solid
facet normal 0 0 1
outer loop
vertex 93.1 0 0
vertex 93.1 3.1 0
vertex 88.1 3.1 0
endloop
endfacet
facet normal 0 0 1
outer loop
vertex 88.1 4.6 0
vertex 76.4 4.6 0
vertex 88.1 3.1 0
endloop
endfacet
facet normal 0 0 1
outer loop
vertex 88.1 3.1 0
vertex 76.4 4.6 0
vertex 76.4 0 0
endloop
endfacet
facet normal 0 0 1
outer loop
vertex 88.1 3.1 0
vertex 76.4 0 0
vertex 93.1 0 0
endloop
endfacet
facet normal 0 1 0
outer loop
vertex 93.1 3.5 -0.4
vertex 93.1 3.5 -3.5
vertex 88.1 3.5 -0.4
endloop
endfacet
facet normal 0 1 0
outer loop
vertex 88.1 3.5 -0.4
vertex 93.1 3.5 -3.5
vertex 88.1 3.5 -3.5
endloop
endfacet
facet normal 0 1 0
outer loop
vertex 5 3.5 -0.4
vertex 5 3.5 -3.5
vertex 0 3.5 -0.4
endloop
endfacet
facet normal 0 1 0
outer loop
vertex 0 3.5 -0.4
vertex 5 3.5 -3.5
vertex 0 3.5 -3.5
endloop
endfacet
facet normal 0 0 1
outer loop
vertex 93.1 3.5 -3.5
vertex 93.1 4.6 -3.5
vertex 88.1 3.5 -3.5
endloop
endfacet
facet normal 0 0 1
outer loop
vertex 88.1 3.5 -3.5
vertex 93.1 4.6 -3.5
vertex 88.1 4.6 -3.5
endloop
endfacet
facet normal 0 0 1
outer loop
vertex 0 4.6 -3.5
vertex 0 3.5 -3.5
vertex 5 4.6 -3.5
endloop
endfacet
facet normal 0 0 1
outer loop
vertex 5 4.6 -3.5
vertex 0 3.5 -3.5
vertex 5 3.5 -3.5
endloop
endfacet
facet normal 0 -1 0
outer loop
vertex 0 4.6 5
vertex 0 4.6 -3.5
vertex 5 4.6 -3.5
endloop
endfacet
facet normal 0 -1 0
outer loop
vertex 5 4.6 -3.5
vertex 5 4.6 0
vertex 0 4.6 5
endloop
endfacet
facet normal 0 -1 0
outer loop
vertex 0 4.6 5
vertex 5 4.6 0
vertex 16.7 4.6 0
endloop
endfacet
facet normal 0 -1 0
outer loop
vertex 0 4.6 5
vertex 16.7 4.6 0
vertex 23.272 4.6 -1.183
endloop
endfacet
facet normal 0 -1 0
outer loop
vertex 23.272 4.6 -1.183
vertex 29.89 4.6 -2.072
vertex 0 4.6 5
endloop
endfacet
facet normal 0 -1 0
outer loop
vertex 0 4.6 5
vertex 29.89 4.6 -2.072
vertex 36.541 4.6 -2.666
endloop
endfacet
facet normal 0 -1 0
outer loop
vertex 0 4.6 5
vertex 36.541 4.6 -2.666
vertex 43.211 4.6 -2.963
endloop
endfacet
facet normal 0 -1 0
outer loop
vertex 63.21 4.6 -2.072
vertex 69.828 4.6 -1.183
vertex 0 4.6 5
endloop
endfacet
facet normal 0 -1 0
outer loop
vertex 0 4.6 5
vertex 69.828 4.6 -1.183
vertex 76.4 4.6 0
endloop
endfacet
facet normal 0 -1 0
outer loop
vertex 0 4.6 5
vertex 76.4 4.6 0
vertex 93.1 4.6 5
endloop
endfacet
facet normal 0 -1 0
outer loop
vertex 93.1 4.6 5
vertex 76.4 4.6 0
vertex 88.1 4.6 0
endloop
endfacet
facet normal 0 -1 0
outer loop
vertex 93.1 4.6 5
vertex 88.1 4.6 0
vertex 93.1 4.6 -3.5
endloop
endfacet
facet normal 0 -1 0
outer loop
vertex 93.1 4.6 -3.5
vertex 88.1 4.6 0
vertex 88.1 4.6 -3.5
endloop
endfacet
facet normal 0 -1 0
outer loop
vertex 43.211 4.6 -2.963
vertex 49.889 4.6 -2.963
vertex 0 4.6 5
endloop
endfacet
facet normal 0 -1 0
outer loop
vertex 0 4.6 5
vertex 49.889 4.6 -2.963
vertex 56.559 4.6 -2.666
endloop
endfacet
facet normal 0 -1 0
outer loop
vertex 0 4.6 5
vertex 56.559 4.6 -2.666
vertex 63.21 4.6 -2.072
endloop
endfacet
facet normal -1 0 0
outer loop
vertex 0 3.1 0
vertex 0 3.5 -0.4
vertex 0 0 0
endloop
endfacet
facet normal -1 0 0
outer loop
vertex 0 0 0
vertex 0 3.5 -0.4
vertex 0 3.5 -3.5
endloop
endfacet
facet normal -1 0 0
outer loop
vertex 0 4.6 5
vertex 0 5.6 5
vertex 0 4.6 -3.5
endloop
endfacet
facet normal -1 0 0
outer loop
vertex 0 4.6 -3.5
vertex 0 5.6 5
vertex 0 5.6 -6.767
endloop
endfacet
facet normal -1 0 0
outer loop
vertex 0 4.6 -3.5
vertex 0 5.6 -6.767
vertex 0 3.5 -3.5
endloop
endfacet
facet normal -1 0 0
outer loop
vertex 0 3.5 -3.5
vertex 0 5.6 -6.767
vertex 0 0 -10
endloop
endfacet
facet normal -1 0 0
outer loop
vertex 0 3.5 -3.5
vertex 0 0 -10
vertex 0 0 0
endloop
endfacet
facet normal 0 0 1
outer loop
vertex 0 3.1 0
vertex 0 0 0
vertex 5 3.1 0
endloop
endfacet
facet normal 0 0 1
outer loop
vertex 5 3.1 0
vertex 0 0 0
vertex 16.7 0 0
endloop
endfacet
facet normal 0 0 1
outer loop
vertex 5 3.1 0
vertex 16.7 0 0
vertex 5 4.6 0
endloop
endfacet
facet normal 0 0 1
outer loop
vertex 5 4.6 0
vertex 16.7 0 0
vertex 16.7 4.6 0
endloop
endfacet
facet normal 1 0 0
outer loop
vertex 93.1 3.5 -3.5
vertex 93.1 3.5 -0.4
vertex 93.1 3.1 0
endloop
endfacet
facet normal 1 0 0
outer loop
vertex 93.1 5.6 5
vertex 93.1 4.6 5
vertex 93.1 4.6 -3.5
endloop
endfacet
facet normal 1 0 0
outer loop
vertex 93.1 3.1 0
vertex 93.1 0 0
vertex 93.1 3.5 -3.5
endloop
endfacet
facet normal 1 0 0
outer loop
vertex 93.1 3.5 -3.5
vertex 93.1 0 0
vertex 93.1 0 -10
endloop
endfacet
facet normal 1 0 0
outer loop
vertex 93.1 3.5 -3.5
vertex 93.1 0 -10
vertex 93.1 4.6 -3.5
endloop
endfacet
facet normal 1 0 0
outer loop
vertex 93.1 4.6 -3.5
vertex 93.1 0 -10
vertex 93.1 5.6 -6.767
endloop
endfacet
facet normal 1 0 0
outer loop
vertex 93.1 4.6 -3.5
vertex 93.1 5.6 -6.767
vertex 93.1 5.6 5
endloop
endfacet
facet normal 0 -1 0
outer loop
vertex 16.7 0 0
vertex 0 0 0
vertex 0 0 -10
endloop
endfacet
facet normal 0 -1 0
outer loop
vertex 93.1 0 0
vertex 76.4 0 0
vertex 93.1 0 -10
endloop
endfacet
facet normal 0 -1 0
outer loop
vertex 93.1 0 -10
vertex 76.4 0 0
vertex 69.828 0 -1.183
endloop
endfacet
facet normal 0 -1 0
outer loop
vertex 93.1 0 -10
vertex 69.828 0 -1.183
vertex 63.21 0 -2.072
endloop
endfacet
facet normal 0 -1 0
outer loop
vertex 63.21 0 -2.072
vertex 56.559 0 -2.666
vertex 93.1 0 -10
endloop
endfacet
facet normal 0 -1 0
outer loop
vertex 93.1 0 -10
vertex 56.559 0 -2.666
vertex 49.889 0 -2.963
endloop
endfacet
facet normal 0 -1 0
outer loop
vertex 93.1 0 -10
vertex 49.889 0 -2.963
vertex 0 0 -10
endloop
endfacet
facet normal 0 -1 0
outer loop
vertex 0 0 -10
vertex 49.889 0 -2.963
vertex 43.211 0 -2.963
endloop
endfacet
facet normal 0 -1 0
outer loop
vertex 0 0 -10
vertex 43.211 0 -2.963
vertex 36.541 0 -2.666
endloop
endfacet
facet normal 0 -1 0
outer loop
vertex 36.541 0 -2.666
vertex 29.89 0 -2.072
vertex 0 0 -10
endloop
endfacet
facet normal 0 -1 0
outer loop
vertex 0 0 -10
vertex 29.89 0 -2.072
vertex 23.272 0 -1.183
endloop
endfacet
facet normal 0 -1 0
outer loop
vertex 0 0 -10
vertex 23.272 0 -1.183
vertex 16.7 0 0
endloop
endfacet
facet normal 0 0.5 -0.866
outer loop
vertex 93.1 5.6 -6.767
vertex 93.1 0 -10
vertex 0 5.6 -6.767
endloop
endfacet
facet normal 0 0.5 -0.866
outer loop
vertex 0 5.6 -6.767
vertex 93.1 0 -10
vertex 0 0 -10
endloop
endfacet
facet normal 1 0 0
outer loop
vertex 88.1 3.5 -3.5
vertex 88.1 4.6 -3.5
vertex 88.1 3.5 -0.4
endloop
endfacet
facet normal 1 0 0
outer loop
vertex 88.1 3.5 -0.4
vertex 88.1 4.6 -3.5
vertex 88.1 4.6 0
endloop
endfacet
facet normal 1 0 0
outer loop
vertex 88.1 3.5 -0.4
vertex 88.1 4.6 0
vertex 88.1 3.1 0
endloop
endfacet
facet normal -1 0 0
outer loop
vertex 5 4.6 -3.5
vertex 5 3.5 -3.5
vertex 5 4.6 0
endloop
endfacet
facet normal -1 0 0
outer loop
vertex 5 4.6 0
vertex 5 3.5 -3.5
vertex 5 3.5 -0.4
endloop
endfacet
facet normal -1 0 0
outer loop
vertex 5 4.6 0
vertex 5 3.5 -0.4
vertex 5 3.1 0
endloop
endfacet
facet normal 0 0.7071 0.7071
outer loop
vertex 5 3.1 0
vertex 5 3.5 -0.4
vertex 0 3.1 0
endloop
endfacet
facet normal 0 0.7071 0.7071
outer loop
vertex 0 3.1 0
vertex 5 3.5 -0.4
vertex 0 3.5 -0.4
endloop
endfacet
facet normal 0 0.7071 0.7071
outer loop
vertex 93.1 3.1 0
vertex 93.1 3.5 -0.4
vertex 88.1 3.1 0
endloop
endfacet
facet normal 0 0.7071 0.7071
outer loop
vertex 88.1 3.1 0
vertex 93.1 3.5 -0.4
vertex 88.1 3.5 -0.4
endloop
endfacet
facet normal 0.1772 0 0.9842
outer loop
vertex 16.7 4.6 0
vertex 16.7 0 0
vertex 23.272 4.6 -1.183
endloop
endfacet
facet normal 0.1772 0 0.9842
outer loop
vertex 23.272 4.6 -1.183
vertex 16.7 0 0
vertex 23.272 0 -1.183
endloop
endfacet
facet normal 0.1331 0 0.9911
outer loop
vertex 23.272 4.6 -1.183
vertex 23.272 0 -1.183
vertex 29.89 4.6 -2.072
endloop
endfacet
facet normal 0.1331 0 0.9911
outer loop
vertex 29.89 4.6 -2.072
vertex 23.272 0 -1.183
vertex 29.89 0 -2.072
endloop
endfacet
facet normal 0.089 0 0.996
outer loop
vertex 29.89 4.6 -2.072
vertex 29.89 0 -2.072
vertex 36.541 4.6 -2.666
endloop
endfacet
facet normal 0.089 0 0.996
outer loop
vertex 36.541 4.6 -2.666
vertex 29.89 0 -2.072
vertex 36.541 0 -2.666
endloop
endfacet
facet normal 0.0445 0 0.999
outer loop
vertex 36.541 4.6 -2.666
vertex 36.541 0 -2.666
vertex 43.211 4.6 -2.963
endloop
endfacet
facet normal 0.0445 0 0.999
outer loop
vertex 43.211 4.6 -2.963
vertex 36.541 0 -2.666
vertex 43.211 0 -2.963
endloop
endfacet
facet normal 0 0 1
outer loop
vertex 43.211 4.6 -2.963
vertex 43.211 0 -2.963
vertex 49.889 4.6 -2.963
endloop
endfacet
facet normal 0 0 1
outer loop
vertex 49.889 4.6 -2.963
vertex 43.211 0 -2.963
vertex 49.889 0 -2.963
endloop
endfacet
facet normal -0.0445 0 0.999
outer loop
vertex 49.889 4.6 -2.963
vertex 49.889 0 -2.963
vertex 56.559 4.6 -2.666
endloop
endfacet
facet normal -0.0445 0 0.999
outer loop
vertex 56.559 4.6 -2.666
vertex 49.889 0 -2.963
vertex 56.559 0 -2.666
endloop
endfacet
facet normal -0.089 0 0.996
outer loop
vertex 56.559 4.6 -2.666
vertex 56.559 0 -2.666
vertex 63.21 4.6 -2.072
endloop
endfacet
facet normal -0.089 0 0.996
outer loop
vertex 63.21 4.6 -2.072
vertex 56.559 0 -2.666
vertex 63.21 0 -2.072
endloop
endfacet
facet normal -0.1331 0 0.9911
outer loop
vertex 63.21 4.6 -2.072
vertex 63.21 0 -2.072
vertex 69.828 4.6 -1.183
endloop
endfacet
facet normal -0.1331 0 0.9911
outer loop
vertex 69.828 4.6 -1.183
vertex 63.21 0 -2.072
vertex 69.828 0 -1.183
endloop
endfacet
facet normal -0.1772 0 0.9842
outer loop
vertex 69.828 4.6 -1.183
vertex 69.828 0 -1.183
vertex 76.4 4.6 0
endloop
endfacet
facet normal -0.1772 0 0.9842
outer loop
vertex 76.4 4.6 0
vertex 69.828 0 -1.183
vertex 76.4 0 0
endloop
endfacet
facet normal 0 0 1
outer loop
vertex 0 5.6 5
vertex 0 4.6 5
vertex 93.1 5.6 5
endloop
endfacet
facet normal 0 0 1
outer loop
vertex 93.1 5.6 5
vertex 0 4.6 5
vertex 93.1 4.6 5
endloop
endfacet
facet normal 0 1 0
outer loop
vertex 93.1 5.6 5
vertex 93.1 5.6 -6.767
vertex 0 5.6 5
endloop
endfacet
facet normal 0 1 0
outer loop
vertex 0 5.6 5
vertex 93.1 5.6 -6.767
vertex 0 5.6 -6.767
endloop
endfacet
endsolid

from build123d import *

# Parameters (mm, degrees)
SKETCH_2_W                  = 93.1
SKETCH_2_H                  = 10
EXTRUDE_1_DEPTH             = 3.5
SKETCH_4_W                  = 93.1
SKETCH_4_H                  = 6.5
EXTRUDE_2_DEPTH             = 1.1
SKETCH_5_W                  = 93.1
SKETCH_5_H                  = 10
EXTRUDE_3_DEPTH             = 2
CUT_EXTRUDE_1_DEPTH         = 94.867832616
SKETCH_7_W                  = 83.1
SKETCH_7_H                  = 1.1
EXTRUDE_4_DEPTH             = 3.5
CHAMFER_1_SIZE              = 0.4
CUT_EXTRUDE_2_REACH         = 95.868
SKETCH_8_R                  = 150
SKETCH_9_W                  = 93.1
SKETCH_9_H                  = 2
EXTRUDE_5_DEPTH             = 5
EXTRUDE_5_DIRECTION_2_REACH = 95.868
CUT_EXTRUDE_3_REACH         = 95.868
SKETCH_10_W                 = 11.766838493
SKETCH_10_H                 = 1


with BuildPart() as part:
    # 草图2 → 凸台-拉伸1 (new body)
    with BuildSketch(Plane(origin=(0, 0, 0), x_dir=(1, 0, 0), z_dir=(0, 1, 0))):
        with Locations((46.55, 5)):
            Rectangle(SKETCH_2_W, SKETCH_2_H)
    extrude(amount=EXTRUDE_1_DEPTH)

    # 草图4 → 凸台-拉伸2 (add)
    with BuildSketch(Plane(origin=(0, 3.5, 0), x_dir=(1, 0, 0), z_dir=(0, 1, 0))):
        with Locations((46.55, 6.75)):
            Rectangle(SKETCH_4_W, SKETCH_4_H)
    extrude(amount=EXTRUDE_2_DEPTH)

    # 草图5 → 凸台-拉伸3 (add)
    with BuildSketch(Plane(origin=(0, 4.6, 0), x_dir=(1, 0, 0), z_dir=(0, 1, 0))):
        with Locations((46.55, 5)):
            Rectangle(SKETCH_5_W, SKETCH_5_H)
    extrude(amount=EXTRUDE_3_DEPTH)

    # 草图6 → 切除-拉伸1 (cut, through all)
    with BuildSketch(Plane.ZY):
        Polygon((-10, 0), (-6.189488223, 6.6), (-10, 6.6), align=None)
    extrude(amount=-CUT_EXTRUDE_1_DEPTH, mode=Mode.SUBTRACT)

    # 草图7 → 凸台-拉伸4 (add)
    with BuildSketch(Plane.XY.offset(-3.5)):
        with Locations((46.55, 4.05)):
            Rectangle(SKETCH_7_W, SKETCH_7_H)
    extrude(amount=EXTRUDE_4_DEPTH)

    # 倒角1
    chamfer_1_edges = [part.edges().sort_by_distance(p)[0] for p in [
        (90.6, 3.5, 0),
        (2.5, 3.5, 0),
    ]]
    chamfer(chamfer_1_edges, length=CHAMFER_1_SIZE)

    # 草图8 → 切除-拉伸2 (cut, up to next)
    with BuildSketch(Plane.XZ, mode=Mode.PRIVATE) as cut_extrude_2_sk1:
        with Locations((46.55, 147)):
            Circle(SKETCH_8_R)
    cut_extrude_2_tool1 = extrude(cut_extrude_2_sk1.sketch, amount=-CUT_EXTRUDE_2_REACH, mode=Mode.PRIVATE) & part.part
    add(cut_extrude_2_tool1.solids().sort_by_distance((46.55, 0, 147))[0], mode=Mode.SUBTRACT)

    # 草图9 → 凸台-拉伸5 (add)
    with BuildSketch(Plane.XY):
        with Locations((46.55, 5.6)):
            Rectangle(SKETCH_9_W, SKETCH_9_H)
    extrude(amount=EXTRUDE_5_DEPTH)

    # 草图9 → 凸台-拉伸5 direction 2 (add, up to next)
    with BuildSketch(Plane.XY, mode=Mode.PRIVATE) as extrude_5_direction_2_sk1:
        with Locations((46.55, 5.6)):
            Rectangle(SKETCH_9_W, SKETCH_9_H)
    extrude_5_direction_2_tool1 = extrude(extrude_5_direction_2_sk1.sketch, amount=-EXTRUDE_5_DIRECTION_2_REACH, mode=Mode.PRIVATE) - part.part
    add(extrude_5_direction_2_tool1.solids().sort_by_distance((46.55, 5.6, 0))[0])

    # 草图10 → 切除-拉伸3 (cut, up to next)
    with BuildSketch(Plane(origin=(93.1, 0, 0), x_dir=(0, 0, -1), z_dir=(1, 0, 0)), mode=Mode.PRIVATE) as cut_extrude_3_sk1:
        with Locations((0.883419247, 6.1)):
            Rectangle(SKETCH_10_W, SKETCH_10_H)
    cut_extrude_3_tool1 = extrude(cut_extrude_3_sk1.sketch, amount=-CUT_EXTRUDE_3_REACH, mode=Mode.PRIVATE) & part.part
    add(cut_extrude_3_tool1.solids().sort_by_distance((93.1, 6.1, -0.883419))[0], mode=Mode.SUBTRACT)


solid = part.part
